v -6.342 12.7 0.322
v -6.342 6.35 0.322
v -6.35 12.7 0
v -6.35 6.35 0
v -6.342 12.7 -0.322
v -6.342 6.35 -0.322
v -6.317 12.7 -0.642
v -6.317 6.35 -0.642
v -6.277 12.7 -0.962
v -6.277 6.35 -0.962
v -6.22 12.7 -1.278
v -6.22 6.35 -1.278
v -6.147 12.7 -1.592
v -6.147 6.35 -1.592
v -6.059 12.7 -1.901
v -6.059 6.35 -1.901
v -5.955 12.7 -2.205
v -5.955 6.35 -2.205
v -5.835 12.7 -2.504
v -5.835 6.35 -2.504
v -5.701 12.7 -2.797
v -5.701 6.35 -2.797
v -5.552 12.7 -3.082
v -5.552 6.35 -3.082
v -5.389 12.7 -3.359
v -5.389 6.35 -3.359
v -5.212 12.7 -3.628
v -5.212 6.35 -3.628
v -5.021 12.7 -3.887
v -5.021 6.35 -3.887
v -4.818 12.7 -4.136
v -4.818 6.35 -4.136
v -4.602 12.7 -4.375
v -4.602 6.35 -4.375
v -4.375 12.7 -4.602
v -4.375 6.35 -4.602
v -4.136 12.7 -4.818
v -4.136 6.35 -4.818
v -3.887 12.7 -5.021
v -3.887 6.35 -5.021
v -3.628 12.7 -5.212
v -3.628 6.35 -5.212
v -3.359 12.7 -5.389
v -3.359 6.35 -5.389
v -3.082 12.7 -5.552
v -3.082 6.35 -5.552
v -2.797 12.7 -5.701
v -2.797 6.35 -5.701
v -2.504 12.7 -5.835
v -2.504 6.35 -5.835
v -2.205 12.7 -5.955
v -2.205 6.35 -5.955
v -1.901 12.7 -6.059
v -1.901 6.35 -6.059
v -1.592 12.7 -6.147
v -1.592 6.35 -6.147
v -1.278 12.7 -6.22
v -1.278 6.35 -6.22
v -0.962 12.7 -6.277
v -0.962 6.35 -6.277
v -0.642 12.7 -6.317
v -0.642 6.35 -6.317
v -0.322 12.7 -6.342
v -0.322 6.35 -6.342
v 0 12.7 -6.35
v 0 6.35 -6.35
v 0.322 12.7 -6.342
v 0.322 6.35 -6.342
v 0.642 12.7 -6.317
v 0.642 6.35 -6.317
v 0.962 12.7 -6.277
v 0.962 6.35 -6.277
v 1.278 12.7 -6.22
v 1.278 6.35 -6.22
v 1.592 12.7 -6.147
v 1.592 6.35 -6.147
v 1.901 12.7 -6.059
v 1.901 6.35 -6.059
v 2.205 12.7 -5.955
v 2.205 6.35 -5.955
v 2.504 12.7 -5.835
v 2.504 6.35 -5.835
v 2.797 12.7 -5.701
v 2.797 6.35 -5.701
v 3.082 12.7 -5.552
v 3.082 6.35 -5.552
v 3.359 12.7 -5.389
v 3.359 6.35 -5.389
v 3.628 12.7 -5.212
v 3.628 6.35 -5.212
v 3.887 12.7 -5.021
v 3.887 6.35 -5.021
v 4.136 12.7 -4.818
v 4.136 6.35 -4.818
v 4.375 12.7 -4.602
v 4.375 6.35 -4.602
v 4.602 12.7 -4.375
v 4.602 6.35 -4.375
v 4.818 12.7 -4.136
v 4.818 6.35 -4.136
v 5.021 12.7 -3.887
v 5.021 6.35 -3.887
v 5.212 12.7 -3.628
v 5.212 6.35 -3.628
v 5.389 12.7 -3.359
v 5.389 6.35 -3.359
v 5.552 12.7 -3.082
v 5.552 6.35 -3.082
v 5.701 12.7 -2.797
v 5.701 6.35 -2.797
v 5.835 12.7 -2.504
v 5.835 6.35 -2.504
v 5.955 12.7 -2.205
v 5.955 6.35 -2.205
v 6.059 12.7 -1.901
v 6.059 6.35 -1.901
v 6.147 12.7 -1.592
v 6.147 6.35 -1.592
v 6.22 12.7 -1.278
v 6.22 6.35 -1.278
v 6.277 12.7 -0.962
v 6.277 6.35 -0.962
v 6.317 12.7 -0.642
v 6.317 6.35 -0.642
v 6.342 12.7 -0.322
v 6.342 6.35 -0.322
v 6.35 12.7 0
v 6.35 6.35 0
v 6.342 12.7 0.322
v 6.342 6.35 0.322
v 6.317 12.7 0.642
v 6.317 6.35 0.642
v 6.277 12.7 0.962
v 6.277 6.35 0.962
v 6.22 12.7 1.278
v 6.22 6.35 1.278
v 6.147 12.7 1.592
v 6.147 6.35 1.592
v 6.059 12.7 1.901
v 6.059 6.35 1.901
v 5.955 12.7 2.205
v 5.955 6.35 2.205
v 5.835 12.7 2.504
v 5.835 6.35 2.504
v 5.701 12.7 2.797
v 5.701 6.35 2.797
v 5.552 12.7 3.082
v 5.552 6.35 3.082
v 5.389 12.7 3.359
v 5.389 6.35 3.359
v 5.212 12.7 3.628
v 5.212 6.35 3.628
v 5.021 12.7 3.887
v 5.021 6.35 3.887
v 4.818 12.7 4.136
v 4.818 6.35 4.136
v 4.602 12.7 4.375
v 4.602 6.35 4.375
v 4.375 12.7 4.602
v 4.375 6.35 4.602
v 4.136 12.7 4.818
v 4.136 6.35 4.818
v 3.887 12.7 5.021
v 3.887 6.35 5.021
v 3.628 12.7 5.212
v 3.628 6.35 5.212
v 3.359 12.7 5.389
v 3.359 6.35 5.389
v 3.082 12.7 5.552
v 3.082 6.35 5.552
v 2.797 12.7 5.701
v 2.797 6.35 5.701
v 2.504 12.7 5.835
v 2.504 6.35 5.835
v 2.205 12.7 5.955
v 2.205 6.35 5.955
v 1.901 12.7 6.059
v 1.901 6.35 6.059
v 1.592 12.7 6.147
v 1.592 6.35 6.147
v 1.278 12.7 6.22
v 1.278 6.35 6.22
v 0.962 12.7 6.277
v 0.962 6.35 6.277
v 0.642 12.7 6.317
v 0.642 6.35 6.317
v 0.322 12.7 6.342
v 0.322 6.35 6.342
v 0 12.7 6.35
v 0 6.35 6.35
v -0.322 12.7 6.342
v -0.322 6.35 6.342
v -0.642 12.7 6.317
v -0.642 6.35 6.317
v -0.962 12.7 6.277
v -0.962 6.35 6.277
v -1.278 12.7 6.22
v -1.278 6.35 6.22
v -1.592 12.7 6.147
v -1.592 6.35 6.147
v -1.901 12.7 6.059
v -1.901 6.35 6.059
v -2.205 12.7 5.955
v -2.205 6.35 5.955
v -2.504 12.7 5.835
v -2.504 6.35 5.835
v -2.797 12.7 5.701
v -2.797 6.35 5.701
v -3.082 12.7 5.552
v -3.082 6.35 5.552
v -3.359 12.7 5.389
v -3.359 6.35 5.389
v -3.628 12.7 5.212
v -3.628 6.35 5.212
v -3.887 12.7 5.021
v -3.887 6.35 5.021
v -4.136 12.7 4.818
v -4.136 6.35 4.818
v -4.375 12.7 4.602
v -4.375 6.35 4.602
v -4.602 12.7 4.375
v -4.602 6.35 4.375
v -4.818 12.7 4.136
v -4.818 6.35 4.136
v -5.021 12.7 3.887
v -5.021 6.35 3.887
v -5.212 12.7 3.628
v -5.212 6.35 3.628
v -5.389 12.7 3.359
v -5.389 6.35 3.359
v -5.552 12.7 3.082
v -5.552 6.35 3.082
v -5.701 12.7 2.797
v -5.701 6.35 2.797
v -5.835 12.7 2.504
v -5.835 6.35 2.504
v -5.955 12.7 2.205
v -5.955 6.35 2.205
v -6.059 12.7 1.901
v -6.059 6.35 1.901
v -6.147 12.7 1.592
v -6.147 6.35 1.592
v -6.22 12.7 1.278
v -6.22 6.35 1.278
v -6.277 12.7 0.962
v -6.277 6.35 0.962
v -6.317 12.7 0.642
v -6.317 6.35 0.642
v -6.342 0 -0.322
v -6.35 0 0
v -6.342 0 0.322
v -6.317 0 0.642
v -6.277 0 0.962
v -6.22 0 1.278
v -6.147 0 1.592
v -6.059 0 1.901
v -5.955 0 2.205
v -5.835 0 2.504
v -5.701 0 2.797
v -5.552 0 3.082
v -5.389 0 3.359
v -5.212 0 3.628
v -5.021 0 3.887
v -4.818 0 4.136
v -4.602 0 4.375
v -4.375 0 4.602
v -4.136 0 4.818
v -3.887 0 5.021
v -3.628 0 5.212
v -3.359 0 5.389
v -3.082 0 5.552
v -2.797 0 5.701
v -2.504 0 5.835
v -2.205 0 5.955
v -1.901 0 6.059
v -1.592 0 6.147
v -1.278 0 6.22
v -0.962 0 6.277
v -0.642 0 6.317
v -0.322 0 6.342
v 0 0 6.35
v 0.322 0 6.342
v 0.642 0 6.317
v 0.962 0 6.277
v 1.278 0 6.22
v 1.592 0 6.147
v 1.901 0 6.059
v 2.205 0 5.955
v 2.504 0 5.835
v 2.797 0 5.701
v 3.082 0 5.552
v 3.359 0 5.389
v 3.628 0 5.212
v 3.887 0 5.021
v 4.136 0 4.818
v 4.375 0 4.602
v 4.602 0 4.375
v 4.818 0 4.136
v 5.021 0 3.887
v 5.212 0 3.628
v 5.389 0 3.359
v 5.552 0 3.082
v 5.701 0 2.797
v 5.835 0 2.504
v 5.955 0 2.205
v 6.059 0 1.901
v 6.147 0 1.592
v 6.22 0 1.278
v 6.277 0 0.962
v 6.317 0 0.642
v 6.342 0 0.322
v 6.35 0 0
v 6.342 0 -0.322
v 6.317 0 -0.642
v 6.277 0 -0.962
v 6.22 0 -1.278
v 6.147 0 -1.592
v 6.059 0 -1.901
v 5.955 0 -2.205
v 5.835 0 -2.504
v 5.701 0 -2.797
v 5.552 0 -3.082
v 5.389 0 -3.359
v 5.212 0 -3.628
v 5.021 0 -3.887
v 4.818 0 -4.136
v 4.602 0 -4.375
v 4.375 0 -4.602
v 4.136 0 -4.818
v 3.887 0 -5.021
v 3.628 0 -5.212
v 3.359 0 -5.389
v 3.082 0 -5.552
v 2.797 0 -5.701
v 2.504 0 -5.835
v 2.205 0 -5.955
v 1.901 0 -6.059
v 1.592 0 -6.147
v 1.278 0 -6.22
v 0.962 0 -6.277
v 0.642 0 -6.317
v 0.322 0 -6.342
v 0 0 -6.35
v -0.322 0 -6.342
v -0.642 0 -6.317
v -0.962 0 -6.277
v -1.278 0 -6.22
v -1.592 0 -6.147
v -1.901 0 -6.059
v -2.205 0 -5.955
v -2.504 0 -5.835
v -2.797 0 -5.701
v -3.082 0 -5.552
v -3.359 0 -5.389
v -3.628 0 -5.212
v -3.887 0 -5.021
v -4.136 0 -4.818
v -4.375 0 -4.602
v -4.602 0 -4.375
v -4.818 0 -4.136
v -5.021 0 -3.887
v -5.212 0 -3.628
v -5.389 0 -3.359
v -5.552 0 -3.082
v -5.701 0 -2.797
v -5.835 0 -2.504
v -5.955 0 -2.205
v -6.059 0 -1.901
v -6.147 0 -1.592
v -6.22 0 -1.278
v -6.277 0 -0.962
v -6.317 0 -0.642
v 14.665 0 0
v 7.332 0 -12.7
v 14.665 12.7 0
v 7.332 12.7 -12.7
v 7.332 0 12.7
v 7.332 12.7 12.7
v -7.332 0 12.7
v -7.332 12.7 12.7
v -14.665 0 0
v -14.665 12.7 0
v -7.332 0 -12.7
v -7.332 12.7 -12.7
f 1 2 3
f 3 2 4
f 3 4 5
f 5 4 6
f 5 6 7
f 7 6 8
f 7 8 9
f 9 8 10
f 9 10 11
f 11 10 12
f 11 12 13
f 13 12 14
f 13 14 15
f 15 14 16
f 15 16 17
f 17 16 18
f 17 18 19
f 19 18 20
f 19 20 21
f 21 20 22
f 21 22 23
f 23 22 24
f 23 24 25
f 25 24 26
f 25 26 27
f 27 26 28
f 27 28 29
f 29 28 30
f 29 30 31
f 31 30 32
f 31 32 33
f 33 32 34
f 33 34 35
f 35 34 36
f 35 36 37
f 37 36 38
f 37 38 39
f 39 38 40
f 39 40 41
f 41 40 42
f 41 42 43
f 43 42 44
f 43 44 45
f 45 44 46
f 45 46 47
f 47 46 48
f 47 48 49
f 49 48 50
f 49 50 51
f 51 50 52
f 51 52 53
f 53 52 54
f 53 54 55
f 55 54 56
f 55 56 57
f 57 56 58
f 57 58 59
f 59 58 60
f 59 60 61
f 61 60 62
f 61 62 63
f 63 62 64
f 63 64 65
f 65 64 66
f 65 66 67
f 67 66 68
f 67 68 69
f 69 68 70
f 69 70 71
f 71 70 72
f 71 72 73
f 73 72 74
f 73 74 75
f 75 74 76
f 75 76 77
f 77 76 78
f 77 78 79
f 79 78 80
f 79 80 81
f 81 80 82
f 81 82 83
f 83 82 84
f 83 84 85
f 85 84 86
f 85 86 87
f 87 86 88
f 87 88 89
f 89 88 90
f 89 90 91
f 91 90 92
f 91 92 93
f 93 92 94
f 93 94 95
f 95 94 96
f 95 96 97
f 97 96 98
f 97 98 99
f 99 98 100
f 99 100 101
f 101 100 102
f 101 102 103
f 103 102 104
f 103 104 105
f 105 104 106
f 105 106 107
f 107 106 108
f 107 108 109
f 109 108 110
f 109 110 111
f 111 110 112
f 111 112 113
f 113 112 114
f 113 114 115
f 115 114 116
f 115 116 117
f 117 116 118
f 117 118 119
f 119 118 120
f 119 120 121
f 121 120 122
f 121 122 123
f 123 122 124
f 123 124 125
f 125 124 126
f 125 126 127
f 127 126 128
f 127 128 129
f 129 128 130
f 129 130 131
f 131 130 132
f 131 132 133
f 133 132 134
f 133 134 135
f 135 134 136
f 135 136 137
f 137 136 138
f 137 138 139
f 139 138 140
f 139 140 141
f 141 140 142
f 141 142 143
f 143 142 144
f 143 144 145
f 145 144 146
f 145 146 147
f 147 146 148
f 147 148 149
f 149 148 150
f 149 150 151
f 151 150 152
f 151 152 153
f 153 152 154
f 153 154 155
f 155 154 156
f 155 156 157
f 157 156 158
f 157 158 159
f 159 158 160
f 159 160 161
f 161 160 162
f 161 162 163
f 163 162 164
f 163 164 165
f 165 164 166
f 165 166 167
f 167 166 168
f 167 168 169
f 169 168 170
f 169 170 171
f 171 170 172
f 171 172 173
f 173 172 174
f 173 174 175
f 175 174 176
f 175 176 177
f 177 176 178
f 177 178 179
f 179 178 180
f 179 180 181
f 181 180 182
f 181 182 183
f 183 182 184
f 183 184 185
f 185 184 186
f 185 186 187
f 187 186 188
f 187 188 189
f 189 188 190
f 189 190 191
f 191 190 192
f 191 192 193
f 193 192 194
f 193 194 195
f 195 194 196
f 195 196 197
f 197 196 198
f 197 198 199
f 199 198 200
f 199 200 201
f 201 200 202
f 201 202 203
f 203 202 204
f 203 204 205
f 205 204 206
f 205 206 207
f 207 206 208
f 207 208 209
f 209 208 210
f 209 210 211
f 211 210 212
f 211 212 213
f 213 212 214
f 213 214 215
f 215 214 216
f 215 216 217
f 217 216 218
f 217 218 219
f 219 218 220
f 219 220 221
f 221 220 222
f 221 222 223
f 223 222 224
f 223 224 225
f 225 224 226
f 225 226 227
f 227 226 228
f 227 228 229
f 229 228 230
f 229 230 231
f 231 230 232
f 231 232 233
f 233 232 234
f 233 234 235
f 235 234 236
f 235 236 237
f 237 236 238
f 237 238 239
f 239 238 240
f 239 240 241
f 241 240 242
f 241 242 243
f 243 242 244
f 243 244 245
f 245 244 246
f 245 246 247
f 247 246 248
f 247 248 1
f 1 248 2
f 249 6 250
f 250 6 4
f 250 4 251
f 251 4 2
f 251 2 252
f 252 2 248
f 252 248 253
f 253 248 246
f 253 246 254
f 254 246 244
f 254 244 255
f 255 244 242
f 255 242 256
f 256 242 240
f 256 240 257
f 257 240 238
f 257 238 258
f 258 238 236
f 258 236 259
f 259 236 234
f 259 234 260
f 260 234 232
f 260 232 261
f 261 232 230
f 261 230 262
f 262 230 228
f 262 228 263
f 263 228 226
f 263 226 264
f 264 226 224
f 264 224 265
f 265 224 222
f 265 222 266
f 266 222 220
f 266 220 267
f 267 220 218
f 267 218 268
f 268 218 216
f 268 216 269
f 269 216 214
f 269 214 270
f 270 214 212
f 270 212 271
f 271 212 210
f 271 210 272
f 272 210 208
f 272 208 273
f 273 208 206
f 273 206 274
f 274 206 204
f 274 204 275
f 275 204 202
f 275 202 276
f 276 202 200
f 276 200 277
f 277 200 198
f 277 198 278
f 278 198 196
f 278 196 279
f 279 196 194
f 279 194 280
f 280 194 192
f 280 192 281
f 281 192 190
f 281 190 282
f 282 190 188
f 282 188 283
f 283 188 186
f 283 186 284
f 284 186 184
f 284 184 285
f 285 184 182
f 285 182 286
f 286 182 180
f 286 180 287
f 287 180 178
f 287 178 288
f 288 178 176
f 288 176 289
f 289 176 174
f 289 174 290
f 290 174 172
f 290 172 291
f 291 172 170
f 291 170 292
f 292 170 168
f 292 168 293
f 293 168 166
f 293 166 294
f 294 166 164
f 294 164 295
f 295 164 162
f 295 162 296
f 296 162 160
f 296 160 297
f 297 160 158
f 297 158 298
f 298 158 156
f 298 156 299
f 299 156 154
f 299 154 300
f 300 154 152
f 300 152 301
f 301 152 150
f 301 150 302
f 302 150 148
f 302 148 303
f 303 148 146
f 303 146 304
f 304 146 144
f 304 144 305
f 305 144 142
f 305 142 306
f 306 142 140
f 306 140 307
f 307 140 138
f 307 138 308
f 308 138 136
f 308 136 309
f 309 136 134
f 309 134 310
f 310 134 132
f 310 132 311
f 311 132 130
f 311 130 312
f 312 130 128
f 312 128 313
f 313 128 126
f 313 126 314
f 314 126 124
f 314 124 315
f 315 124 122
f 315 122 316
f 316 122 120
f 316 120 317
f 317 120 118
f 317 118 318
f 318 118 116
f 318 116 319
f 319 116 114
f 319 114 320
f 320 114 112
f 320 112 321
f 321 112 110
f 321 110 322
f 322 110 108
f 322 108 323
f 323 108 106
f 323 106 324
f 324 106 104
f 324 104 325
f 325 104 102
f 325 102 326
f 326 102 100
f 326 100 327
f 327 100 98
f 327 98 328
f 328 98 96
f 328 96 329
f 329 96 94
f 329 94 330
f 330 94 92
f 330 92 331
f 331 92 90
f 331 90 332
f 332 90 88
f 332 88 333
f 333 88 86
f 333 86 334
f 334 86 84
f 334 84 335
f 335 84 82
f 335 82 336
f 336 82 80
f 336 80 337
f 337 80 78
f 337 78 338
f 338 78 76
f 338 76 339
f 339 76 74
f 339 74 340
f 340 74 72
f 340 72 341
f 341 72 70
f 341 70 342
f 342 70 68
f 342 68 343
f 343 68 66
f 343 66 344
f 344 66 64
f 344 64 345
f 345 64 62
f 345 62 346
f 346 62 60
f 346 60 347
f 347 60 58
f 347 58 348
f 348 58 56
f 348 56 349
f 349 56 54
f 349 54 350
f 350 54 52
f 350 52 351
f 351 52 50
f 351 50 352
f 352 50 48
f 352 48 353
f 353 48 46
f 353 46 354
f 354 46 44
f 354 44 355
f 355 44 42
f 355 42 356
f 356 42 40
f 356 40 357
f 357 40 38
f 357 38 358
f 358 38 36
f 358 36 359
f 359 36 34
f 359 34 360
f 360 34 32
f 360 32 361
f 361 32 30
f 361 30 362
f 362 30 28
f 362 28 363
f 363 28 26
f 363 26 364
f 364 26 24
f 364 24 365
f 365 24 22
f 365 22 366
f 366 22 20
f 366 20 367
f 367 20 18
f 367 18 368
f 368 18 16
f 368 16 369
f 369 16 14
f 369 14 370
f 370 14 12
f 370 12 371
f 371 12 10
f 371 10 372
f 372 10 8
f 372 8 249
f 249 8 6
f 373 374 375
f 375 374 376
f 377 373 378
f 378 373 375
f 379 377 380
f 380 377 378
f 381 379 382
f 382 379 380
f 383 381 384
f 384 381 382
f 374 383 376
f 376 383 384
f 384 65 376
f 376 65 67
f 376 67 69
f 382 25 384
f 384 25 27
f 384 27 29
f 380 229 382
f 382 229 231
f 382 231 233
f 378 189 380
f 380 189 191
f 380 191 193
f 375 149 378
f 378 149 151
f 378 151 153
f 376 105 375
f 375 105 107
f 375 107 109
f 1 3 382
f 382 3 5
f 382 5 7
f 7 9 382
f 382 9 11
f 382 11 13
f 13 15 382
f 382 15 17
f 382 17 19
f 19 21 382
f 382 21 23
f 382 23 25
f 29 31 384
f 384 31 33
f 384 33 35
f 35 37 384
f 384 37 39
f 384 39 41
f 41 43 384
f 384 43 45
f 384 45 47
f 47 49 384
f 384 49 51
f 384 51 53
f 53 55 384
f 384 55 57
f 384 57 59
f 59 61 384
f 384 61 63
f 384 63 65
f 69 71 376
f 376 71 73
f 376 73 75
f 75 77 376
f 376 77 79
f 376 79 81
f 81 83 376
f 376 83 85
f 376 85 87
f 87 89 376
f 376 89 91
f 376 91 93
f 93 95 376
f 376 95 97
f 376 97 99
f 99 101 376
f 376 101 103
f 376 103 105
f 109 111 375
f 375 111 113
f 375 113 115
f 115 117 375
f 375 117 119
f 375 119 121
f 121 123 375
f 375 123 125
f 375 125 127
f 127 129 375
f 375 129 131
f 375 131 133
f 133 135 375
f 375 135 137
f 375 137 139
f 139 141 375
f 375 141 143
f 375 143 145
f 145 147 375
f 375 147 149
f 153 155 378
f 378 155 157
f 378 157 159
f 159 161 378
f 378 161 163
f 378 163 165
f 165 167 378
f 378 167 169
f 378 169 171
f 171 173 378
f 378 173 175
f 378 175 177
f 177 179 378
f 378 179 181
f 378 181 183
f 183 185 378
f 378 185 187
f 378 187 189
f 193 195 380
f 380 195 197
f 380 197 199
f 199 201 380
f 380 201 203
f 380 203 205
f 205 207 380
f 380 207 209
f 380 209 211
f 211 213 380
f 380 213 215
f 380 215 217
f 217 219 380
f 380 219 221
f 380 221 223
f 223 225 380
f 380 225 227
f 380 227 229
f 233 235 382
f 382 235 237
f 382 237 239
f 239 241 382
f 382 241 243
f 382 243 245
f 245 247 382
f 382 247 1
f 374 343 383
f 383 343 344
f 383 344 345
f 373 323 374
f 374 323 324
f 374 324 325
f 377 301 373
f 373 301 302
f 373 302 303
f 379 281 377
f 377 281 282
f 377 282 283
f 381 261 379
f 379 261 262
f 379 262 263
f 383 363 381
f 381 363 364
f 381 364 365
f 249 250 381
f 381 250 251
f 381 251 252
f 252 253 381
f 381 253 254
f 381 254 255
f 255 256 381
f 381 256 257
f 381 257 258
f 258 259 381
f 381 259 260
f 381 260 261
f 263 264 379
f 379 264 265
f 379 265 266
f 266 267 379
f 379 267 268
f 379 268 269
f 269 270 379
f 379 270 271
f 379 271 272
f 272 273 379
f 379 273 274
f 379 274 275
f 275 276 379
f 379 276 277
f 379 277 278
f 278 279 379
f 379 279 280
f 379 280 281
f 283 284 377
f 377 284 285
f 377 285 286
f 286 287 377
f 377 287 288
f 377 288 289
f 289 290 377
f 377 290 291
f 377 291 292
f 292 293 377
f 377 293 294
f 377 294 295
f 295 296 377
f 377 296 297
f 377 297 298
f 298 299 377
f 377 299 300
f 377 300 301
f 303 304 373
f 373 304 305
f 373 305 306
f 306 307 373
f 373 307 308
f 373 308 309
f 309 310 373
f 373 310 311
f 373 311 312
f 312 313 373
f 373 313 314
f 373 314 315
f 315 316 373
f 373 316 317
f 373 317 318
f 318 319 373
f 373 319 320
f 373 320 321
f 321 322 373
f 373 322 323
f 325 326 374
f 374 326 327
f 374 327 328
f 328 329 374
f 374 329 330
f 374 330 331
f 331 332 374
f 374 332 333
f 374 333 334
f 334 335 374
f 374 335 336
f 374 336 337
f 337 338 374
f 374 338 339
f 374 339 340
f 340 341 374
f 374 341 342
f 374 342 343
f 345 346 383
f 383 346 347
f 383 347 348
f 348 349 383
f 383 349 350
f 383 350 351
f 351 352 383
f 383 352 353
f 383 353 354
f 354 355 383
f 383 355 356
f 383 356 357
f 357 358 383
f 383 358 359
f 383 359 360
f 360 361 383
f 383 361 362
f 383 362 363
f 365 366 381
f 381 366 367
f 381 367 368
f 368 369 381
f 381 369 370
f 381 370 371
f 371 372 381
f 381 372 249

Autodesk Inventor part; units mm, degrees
ref_plane "YZ Plane" through (0, 0, 0) normal (1, 0, 0) x (0, 1, 0)
ref_plane "XZ Plane" through (0, 0, 0) normal (0, 1, 0) x (-1, 0, 0)
ref_plane "XY Plane" through (0, 0, 0) normal (0, 0, 1) x (1, 0, 0)
sketch "Sketch1" plane through (0, 0, 0) normal (0, 1, 0) x (-1, 0, 0)
  line L0 (-14.6647, 0) -> (-7.3323, 12.7)
  line L1 (-7.3323, 12.7) -> (7.3323, 12.7)
  line L2 (7.3323, 12.7) -> (14.6647, 0)
  line L3 (14.6647, 0) -> (7.3323, -12.7)
  line L4 (7.3323, -12.7) -> (-7.3323, -12.7)
  line L5 (-7.3323, -12.7) -> (-14.6647, 0)
  circle A0 centre (0, 0) radius 6.35
  dimension "d0" = 25.4
  dimension "d1" = 12.7
extrude "Extrusion1" add sketch "Sketch1" along normal blind 12.7
sketch "Sketch2" plane through (-7.3323, 0, 12.7) normal (0, 0, 1) x (1, 0, 0)
  point P0 (7.3323, 0)
properties part number "printCalibration"
